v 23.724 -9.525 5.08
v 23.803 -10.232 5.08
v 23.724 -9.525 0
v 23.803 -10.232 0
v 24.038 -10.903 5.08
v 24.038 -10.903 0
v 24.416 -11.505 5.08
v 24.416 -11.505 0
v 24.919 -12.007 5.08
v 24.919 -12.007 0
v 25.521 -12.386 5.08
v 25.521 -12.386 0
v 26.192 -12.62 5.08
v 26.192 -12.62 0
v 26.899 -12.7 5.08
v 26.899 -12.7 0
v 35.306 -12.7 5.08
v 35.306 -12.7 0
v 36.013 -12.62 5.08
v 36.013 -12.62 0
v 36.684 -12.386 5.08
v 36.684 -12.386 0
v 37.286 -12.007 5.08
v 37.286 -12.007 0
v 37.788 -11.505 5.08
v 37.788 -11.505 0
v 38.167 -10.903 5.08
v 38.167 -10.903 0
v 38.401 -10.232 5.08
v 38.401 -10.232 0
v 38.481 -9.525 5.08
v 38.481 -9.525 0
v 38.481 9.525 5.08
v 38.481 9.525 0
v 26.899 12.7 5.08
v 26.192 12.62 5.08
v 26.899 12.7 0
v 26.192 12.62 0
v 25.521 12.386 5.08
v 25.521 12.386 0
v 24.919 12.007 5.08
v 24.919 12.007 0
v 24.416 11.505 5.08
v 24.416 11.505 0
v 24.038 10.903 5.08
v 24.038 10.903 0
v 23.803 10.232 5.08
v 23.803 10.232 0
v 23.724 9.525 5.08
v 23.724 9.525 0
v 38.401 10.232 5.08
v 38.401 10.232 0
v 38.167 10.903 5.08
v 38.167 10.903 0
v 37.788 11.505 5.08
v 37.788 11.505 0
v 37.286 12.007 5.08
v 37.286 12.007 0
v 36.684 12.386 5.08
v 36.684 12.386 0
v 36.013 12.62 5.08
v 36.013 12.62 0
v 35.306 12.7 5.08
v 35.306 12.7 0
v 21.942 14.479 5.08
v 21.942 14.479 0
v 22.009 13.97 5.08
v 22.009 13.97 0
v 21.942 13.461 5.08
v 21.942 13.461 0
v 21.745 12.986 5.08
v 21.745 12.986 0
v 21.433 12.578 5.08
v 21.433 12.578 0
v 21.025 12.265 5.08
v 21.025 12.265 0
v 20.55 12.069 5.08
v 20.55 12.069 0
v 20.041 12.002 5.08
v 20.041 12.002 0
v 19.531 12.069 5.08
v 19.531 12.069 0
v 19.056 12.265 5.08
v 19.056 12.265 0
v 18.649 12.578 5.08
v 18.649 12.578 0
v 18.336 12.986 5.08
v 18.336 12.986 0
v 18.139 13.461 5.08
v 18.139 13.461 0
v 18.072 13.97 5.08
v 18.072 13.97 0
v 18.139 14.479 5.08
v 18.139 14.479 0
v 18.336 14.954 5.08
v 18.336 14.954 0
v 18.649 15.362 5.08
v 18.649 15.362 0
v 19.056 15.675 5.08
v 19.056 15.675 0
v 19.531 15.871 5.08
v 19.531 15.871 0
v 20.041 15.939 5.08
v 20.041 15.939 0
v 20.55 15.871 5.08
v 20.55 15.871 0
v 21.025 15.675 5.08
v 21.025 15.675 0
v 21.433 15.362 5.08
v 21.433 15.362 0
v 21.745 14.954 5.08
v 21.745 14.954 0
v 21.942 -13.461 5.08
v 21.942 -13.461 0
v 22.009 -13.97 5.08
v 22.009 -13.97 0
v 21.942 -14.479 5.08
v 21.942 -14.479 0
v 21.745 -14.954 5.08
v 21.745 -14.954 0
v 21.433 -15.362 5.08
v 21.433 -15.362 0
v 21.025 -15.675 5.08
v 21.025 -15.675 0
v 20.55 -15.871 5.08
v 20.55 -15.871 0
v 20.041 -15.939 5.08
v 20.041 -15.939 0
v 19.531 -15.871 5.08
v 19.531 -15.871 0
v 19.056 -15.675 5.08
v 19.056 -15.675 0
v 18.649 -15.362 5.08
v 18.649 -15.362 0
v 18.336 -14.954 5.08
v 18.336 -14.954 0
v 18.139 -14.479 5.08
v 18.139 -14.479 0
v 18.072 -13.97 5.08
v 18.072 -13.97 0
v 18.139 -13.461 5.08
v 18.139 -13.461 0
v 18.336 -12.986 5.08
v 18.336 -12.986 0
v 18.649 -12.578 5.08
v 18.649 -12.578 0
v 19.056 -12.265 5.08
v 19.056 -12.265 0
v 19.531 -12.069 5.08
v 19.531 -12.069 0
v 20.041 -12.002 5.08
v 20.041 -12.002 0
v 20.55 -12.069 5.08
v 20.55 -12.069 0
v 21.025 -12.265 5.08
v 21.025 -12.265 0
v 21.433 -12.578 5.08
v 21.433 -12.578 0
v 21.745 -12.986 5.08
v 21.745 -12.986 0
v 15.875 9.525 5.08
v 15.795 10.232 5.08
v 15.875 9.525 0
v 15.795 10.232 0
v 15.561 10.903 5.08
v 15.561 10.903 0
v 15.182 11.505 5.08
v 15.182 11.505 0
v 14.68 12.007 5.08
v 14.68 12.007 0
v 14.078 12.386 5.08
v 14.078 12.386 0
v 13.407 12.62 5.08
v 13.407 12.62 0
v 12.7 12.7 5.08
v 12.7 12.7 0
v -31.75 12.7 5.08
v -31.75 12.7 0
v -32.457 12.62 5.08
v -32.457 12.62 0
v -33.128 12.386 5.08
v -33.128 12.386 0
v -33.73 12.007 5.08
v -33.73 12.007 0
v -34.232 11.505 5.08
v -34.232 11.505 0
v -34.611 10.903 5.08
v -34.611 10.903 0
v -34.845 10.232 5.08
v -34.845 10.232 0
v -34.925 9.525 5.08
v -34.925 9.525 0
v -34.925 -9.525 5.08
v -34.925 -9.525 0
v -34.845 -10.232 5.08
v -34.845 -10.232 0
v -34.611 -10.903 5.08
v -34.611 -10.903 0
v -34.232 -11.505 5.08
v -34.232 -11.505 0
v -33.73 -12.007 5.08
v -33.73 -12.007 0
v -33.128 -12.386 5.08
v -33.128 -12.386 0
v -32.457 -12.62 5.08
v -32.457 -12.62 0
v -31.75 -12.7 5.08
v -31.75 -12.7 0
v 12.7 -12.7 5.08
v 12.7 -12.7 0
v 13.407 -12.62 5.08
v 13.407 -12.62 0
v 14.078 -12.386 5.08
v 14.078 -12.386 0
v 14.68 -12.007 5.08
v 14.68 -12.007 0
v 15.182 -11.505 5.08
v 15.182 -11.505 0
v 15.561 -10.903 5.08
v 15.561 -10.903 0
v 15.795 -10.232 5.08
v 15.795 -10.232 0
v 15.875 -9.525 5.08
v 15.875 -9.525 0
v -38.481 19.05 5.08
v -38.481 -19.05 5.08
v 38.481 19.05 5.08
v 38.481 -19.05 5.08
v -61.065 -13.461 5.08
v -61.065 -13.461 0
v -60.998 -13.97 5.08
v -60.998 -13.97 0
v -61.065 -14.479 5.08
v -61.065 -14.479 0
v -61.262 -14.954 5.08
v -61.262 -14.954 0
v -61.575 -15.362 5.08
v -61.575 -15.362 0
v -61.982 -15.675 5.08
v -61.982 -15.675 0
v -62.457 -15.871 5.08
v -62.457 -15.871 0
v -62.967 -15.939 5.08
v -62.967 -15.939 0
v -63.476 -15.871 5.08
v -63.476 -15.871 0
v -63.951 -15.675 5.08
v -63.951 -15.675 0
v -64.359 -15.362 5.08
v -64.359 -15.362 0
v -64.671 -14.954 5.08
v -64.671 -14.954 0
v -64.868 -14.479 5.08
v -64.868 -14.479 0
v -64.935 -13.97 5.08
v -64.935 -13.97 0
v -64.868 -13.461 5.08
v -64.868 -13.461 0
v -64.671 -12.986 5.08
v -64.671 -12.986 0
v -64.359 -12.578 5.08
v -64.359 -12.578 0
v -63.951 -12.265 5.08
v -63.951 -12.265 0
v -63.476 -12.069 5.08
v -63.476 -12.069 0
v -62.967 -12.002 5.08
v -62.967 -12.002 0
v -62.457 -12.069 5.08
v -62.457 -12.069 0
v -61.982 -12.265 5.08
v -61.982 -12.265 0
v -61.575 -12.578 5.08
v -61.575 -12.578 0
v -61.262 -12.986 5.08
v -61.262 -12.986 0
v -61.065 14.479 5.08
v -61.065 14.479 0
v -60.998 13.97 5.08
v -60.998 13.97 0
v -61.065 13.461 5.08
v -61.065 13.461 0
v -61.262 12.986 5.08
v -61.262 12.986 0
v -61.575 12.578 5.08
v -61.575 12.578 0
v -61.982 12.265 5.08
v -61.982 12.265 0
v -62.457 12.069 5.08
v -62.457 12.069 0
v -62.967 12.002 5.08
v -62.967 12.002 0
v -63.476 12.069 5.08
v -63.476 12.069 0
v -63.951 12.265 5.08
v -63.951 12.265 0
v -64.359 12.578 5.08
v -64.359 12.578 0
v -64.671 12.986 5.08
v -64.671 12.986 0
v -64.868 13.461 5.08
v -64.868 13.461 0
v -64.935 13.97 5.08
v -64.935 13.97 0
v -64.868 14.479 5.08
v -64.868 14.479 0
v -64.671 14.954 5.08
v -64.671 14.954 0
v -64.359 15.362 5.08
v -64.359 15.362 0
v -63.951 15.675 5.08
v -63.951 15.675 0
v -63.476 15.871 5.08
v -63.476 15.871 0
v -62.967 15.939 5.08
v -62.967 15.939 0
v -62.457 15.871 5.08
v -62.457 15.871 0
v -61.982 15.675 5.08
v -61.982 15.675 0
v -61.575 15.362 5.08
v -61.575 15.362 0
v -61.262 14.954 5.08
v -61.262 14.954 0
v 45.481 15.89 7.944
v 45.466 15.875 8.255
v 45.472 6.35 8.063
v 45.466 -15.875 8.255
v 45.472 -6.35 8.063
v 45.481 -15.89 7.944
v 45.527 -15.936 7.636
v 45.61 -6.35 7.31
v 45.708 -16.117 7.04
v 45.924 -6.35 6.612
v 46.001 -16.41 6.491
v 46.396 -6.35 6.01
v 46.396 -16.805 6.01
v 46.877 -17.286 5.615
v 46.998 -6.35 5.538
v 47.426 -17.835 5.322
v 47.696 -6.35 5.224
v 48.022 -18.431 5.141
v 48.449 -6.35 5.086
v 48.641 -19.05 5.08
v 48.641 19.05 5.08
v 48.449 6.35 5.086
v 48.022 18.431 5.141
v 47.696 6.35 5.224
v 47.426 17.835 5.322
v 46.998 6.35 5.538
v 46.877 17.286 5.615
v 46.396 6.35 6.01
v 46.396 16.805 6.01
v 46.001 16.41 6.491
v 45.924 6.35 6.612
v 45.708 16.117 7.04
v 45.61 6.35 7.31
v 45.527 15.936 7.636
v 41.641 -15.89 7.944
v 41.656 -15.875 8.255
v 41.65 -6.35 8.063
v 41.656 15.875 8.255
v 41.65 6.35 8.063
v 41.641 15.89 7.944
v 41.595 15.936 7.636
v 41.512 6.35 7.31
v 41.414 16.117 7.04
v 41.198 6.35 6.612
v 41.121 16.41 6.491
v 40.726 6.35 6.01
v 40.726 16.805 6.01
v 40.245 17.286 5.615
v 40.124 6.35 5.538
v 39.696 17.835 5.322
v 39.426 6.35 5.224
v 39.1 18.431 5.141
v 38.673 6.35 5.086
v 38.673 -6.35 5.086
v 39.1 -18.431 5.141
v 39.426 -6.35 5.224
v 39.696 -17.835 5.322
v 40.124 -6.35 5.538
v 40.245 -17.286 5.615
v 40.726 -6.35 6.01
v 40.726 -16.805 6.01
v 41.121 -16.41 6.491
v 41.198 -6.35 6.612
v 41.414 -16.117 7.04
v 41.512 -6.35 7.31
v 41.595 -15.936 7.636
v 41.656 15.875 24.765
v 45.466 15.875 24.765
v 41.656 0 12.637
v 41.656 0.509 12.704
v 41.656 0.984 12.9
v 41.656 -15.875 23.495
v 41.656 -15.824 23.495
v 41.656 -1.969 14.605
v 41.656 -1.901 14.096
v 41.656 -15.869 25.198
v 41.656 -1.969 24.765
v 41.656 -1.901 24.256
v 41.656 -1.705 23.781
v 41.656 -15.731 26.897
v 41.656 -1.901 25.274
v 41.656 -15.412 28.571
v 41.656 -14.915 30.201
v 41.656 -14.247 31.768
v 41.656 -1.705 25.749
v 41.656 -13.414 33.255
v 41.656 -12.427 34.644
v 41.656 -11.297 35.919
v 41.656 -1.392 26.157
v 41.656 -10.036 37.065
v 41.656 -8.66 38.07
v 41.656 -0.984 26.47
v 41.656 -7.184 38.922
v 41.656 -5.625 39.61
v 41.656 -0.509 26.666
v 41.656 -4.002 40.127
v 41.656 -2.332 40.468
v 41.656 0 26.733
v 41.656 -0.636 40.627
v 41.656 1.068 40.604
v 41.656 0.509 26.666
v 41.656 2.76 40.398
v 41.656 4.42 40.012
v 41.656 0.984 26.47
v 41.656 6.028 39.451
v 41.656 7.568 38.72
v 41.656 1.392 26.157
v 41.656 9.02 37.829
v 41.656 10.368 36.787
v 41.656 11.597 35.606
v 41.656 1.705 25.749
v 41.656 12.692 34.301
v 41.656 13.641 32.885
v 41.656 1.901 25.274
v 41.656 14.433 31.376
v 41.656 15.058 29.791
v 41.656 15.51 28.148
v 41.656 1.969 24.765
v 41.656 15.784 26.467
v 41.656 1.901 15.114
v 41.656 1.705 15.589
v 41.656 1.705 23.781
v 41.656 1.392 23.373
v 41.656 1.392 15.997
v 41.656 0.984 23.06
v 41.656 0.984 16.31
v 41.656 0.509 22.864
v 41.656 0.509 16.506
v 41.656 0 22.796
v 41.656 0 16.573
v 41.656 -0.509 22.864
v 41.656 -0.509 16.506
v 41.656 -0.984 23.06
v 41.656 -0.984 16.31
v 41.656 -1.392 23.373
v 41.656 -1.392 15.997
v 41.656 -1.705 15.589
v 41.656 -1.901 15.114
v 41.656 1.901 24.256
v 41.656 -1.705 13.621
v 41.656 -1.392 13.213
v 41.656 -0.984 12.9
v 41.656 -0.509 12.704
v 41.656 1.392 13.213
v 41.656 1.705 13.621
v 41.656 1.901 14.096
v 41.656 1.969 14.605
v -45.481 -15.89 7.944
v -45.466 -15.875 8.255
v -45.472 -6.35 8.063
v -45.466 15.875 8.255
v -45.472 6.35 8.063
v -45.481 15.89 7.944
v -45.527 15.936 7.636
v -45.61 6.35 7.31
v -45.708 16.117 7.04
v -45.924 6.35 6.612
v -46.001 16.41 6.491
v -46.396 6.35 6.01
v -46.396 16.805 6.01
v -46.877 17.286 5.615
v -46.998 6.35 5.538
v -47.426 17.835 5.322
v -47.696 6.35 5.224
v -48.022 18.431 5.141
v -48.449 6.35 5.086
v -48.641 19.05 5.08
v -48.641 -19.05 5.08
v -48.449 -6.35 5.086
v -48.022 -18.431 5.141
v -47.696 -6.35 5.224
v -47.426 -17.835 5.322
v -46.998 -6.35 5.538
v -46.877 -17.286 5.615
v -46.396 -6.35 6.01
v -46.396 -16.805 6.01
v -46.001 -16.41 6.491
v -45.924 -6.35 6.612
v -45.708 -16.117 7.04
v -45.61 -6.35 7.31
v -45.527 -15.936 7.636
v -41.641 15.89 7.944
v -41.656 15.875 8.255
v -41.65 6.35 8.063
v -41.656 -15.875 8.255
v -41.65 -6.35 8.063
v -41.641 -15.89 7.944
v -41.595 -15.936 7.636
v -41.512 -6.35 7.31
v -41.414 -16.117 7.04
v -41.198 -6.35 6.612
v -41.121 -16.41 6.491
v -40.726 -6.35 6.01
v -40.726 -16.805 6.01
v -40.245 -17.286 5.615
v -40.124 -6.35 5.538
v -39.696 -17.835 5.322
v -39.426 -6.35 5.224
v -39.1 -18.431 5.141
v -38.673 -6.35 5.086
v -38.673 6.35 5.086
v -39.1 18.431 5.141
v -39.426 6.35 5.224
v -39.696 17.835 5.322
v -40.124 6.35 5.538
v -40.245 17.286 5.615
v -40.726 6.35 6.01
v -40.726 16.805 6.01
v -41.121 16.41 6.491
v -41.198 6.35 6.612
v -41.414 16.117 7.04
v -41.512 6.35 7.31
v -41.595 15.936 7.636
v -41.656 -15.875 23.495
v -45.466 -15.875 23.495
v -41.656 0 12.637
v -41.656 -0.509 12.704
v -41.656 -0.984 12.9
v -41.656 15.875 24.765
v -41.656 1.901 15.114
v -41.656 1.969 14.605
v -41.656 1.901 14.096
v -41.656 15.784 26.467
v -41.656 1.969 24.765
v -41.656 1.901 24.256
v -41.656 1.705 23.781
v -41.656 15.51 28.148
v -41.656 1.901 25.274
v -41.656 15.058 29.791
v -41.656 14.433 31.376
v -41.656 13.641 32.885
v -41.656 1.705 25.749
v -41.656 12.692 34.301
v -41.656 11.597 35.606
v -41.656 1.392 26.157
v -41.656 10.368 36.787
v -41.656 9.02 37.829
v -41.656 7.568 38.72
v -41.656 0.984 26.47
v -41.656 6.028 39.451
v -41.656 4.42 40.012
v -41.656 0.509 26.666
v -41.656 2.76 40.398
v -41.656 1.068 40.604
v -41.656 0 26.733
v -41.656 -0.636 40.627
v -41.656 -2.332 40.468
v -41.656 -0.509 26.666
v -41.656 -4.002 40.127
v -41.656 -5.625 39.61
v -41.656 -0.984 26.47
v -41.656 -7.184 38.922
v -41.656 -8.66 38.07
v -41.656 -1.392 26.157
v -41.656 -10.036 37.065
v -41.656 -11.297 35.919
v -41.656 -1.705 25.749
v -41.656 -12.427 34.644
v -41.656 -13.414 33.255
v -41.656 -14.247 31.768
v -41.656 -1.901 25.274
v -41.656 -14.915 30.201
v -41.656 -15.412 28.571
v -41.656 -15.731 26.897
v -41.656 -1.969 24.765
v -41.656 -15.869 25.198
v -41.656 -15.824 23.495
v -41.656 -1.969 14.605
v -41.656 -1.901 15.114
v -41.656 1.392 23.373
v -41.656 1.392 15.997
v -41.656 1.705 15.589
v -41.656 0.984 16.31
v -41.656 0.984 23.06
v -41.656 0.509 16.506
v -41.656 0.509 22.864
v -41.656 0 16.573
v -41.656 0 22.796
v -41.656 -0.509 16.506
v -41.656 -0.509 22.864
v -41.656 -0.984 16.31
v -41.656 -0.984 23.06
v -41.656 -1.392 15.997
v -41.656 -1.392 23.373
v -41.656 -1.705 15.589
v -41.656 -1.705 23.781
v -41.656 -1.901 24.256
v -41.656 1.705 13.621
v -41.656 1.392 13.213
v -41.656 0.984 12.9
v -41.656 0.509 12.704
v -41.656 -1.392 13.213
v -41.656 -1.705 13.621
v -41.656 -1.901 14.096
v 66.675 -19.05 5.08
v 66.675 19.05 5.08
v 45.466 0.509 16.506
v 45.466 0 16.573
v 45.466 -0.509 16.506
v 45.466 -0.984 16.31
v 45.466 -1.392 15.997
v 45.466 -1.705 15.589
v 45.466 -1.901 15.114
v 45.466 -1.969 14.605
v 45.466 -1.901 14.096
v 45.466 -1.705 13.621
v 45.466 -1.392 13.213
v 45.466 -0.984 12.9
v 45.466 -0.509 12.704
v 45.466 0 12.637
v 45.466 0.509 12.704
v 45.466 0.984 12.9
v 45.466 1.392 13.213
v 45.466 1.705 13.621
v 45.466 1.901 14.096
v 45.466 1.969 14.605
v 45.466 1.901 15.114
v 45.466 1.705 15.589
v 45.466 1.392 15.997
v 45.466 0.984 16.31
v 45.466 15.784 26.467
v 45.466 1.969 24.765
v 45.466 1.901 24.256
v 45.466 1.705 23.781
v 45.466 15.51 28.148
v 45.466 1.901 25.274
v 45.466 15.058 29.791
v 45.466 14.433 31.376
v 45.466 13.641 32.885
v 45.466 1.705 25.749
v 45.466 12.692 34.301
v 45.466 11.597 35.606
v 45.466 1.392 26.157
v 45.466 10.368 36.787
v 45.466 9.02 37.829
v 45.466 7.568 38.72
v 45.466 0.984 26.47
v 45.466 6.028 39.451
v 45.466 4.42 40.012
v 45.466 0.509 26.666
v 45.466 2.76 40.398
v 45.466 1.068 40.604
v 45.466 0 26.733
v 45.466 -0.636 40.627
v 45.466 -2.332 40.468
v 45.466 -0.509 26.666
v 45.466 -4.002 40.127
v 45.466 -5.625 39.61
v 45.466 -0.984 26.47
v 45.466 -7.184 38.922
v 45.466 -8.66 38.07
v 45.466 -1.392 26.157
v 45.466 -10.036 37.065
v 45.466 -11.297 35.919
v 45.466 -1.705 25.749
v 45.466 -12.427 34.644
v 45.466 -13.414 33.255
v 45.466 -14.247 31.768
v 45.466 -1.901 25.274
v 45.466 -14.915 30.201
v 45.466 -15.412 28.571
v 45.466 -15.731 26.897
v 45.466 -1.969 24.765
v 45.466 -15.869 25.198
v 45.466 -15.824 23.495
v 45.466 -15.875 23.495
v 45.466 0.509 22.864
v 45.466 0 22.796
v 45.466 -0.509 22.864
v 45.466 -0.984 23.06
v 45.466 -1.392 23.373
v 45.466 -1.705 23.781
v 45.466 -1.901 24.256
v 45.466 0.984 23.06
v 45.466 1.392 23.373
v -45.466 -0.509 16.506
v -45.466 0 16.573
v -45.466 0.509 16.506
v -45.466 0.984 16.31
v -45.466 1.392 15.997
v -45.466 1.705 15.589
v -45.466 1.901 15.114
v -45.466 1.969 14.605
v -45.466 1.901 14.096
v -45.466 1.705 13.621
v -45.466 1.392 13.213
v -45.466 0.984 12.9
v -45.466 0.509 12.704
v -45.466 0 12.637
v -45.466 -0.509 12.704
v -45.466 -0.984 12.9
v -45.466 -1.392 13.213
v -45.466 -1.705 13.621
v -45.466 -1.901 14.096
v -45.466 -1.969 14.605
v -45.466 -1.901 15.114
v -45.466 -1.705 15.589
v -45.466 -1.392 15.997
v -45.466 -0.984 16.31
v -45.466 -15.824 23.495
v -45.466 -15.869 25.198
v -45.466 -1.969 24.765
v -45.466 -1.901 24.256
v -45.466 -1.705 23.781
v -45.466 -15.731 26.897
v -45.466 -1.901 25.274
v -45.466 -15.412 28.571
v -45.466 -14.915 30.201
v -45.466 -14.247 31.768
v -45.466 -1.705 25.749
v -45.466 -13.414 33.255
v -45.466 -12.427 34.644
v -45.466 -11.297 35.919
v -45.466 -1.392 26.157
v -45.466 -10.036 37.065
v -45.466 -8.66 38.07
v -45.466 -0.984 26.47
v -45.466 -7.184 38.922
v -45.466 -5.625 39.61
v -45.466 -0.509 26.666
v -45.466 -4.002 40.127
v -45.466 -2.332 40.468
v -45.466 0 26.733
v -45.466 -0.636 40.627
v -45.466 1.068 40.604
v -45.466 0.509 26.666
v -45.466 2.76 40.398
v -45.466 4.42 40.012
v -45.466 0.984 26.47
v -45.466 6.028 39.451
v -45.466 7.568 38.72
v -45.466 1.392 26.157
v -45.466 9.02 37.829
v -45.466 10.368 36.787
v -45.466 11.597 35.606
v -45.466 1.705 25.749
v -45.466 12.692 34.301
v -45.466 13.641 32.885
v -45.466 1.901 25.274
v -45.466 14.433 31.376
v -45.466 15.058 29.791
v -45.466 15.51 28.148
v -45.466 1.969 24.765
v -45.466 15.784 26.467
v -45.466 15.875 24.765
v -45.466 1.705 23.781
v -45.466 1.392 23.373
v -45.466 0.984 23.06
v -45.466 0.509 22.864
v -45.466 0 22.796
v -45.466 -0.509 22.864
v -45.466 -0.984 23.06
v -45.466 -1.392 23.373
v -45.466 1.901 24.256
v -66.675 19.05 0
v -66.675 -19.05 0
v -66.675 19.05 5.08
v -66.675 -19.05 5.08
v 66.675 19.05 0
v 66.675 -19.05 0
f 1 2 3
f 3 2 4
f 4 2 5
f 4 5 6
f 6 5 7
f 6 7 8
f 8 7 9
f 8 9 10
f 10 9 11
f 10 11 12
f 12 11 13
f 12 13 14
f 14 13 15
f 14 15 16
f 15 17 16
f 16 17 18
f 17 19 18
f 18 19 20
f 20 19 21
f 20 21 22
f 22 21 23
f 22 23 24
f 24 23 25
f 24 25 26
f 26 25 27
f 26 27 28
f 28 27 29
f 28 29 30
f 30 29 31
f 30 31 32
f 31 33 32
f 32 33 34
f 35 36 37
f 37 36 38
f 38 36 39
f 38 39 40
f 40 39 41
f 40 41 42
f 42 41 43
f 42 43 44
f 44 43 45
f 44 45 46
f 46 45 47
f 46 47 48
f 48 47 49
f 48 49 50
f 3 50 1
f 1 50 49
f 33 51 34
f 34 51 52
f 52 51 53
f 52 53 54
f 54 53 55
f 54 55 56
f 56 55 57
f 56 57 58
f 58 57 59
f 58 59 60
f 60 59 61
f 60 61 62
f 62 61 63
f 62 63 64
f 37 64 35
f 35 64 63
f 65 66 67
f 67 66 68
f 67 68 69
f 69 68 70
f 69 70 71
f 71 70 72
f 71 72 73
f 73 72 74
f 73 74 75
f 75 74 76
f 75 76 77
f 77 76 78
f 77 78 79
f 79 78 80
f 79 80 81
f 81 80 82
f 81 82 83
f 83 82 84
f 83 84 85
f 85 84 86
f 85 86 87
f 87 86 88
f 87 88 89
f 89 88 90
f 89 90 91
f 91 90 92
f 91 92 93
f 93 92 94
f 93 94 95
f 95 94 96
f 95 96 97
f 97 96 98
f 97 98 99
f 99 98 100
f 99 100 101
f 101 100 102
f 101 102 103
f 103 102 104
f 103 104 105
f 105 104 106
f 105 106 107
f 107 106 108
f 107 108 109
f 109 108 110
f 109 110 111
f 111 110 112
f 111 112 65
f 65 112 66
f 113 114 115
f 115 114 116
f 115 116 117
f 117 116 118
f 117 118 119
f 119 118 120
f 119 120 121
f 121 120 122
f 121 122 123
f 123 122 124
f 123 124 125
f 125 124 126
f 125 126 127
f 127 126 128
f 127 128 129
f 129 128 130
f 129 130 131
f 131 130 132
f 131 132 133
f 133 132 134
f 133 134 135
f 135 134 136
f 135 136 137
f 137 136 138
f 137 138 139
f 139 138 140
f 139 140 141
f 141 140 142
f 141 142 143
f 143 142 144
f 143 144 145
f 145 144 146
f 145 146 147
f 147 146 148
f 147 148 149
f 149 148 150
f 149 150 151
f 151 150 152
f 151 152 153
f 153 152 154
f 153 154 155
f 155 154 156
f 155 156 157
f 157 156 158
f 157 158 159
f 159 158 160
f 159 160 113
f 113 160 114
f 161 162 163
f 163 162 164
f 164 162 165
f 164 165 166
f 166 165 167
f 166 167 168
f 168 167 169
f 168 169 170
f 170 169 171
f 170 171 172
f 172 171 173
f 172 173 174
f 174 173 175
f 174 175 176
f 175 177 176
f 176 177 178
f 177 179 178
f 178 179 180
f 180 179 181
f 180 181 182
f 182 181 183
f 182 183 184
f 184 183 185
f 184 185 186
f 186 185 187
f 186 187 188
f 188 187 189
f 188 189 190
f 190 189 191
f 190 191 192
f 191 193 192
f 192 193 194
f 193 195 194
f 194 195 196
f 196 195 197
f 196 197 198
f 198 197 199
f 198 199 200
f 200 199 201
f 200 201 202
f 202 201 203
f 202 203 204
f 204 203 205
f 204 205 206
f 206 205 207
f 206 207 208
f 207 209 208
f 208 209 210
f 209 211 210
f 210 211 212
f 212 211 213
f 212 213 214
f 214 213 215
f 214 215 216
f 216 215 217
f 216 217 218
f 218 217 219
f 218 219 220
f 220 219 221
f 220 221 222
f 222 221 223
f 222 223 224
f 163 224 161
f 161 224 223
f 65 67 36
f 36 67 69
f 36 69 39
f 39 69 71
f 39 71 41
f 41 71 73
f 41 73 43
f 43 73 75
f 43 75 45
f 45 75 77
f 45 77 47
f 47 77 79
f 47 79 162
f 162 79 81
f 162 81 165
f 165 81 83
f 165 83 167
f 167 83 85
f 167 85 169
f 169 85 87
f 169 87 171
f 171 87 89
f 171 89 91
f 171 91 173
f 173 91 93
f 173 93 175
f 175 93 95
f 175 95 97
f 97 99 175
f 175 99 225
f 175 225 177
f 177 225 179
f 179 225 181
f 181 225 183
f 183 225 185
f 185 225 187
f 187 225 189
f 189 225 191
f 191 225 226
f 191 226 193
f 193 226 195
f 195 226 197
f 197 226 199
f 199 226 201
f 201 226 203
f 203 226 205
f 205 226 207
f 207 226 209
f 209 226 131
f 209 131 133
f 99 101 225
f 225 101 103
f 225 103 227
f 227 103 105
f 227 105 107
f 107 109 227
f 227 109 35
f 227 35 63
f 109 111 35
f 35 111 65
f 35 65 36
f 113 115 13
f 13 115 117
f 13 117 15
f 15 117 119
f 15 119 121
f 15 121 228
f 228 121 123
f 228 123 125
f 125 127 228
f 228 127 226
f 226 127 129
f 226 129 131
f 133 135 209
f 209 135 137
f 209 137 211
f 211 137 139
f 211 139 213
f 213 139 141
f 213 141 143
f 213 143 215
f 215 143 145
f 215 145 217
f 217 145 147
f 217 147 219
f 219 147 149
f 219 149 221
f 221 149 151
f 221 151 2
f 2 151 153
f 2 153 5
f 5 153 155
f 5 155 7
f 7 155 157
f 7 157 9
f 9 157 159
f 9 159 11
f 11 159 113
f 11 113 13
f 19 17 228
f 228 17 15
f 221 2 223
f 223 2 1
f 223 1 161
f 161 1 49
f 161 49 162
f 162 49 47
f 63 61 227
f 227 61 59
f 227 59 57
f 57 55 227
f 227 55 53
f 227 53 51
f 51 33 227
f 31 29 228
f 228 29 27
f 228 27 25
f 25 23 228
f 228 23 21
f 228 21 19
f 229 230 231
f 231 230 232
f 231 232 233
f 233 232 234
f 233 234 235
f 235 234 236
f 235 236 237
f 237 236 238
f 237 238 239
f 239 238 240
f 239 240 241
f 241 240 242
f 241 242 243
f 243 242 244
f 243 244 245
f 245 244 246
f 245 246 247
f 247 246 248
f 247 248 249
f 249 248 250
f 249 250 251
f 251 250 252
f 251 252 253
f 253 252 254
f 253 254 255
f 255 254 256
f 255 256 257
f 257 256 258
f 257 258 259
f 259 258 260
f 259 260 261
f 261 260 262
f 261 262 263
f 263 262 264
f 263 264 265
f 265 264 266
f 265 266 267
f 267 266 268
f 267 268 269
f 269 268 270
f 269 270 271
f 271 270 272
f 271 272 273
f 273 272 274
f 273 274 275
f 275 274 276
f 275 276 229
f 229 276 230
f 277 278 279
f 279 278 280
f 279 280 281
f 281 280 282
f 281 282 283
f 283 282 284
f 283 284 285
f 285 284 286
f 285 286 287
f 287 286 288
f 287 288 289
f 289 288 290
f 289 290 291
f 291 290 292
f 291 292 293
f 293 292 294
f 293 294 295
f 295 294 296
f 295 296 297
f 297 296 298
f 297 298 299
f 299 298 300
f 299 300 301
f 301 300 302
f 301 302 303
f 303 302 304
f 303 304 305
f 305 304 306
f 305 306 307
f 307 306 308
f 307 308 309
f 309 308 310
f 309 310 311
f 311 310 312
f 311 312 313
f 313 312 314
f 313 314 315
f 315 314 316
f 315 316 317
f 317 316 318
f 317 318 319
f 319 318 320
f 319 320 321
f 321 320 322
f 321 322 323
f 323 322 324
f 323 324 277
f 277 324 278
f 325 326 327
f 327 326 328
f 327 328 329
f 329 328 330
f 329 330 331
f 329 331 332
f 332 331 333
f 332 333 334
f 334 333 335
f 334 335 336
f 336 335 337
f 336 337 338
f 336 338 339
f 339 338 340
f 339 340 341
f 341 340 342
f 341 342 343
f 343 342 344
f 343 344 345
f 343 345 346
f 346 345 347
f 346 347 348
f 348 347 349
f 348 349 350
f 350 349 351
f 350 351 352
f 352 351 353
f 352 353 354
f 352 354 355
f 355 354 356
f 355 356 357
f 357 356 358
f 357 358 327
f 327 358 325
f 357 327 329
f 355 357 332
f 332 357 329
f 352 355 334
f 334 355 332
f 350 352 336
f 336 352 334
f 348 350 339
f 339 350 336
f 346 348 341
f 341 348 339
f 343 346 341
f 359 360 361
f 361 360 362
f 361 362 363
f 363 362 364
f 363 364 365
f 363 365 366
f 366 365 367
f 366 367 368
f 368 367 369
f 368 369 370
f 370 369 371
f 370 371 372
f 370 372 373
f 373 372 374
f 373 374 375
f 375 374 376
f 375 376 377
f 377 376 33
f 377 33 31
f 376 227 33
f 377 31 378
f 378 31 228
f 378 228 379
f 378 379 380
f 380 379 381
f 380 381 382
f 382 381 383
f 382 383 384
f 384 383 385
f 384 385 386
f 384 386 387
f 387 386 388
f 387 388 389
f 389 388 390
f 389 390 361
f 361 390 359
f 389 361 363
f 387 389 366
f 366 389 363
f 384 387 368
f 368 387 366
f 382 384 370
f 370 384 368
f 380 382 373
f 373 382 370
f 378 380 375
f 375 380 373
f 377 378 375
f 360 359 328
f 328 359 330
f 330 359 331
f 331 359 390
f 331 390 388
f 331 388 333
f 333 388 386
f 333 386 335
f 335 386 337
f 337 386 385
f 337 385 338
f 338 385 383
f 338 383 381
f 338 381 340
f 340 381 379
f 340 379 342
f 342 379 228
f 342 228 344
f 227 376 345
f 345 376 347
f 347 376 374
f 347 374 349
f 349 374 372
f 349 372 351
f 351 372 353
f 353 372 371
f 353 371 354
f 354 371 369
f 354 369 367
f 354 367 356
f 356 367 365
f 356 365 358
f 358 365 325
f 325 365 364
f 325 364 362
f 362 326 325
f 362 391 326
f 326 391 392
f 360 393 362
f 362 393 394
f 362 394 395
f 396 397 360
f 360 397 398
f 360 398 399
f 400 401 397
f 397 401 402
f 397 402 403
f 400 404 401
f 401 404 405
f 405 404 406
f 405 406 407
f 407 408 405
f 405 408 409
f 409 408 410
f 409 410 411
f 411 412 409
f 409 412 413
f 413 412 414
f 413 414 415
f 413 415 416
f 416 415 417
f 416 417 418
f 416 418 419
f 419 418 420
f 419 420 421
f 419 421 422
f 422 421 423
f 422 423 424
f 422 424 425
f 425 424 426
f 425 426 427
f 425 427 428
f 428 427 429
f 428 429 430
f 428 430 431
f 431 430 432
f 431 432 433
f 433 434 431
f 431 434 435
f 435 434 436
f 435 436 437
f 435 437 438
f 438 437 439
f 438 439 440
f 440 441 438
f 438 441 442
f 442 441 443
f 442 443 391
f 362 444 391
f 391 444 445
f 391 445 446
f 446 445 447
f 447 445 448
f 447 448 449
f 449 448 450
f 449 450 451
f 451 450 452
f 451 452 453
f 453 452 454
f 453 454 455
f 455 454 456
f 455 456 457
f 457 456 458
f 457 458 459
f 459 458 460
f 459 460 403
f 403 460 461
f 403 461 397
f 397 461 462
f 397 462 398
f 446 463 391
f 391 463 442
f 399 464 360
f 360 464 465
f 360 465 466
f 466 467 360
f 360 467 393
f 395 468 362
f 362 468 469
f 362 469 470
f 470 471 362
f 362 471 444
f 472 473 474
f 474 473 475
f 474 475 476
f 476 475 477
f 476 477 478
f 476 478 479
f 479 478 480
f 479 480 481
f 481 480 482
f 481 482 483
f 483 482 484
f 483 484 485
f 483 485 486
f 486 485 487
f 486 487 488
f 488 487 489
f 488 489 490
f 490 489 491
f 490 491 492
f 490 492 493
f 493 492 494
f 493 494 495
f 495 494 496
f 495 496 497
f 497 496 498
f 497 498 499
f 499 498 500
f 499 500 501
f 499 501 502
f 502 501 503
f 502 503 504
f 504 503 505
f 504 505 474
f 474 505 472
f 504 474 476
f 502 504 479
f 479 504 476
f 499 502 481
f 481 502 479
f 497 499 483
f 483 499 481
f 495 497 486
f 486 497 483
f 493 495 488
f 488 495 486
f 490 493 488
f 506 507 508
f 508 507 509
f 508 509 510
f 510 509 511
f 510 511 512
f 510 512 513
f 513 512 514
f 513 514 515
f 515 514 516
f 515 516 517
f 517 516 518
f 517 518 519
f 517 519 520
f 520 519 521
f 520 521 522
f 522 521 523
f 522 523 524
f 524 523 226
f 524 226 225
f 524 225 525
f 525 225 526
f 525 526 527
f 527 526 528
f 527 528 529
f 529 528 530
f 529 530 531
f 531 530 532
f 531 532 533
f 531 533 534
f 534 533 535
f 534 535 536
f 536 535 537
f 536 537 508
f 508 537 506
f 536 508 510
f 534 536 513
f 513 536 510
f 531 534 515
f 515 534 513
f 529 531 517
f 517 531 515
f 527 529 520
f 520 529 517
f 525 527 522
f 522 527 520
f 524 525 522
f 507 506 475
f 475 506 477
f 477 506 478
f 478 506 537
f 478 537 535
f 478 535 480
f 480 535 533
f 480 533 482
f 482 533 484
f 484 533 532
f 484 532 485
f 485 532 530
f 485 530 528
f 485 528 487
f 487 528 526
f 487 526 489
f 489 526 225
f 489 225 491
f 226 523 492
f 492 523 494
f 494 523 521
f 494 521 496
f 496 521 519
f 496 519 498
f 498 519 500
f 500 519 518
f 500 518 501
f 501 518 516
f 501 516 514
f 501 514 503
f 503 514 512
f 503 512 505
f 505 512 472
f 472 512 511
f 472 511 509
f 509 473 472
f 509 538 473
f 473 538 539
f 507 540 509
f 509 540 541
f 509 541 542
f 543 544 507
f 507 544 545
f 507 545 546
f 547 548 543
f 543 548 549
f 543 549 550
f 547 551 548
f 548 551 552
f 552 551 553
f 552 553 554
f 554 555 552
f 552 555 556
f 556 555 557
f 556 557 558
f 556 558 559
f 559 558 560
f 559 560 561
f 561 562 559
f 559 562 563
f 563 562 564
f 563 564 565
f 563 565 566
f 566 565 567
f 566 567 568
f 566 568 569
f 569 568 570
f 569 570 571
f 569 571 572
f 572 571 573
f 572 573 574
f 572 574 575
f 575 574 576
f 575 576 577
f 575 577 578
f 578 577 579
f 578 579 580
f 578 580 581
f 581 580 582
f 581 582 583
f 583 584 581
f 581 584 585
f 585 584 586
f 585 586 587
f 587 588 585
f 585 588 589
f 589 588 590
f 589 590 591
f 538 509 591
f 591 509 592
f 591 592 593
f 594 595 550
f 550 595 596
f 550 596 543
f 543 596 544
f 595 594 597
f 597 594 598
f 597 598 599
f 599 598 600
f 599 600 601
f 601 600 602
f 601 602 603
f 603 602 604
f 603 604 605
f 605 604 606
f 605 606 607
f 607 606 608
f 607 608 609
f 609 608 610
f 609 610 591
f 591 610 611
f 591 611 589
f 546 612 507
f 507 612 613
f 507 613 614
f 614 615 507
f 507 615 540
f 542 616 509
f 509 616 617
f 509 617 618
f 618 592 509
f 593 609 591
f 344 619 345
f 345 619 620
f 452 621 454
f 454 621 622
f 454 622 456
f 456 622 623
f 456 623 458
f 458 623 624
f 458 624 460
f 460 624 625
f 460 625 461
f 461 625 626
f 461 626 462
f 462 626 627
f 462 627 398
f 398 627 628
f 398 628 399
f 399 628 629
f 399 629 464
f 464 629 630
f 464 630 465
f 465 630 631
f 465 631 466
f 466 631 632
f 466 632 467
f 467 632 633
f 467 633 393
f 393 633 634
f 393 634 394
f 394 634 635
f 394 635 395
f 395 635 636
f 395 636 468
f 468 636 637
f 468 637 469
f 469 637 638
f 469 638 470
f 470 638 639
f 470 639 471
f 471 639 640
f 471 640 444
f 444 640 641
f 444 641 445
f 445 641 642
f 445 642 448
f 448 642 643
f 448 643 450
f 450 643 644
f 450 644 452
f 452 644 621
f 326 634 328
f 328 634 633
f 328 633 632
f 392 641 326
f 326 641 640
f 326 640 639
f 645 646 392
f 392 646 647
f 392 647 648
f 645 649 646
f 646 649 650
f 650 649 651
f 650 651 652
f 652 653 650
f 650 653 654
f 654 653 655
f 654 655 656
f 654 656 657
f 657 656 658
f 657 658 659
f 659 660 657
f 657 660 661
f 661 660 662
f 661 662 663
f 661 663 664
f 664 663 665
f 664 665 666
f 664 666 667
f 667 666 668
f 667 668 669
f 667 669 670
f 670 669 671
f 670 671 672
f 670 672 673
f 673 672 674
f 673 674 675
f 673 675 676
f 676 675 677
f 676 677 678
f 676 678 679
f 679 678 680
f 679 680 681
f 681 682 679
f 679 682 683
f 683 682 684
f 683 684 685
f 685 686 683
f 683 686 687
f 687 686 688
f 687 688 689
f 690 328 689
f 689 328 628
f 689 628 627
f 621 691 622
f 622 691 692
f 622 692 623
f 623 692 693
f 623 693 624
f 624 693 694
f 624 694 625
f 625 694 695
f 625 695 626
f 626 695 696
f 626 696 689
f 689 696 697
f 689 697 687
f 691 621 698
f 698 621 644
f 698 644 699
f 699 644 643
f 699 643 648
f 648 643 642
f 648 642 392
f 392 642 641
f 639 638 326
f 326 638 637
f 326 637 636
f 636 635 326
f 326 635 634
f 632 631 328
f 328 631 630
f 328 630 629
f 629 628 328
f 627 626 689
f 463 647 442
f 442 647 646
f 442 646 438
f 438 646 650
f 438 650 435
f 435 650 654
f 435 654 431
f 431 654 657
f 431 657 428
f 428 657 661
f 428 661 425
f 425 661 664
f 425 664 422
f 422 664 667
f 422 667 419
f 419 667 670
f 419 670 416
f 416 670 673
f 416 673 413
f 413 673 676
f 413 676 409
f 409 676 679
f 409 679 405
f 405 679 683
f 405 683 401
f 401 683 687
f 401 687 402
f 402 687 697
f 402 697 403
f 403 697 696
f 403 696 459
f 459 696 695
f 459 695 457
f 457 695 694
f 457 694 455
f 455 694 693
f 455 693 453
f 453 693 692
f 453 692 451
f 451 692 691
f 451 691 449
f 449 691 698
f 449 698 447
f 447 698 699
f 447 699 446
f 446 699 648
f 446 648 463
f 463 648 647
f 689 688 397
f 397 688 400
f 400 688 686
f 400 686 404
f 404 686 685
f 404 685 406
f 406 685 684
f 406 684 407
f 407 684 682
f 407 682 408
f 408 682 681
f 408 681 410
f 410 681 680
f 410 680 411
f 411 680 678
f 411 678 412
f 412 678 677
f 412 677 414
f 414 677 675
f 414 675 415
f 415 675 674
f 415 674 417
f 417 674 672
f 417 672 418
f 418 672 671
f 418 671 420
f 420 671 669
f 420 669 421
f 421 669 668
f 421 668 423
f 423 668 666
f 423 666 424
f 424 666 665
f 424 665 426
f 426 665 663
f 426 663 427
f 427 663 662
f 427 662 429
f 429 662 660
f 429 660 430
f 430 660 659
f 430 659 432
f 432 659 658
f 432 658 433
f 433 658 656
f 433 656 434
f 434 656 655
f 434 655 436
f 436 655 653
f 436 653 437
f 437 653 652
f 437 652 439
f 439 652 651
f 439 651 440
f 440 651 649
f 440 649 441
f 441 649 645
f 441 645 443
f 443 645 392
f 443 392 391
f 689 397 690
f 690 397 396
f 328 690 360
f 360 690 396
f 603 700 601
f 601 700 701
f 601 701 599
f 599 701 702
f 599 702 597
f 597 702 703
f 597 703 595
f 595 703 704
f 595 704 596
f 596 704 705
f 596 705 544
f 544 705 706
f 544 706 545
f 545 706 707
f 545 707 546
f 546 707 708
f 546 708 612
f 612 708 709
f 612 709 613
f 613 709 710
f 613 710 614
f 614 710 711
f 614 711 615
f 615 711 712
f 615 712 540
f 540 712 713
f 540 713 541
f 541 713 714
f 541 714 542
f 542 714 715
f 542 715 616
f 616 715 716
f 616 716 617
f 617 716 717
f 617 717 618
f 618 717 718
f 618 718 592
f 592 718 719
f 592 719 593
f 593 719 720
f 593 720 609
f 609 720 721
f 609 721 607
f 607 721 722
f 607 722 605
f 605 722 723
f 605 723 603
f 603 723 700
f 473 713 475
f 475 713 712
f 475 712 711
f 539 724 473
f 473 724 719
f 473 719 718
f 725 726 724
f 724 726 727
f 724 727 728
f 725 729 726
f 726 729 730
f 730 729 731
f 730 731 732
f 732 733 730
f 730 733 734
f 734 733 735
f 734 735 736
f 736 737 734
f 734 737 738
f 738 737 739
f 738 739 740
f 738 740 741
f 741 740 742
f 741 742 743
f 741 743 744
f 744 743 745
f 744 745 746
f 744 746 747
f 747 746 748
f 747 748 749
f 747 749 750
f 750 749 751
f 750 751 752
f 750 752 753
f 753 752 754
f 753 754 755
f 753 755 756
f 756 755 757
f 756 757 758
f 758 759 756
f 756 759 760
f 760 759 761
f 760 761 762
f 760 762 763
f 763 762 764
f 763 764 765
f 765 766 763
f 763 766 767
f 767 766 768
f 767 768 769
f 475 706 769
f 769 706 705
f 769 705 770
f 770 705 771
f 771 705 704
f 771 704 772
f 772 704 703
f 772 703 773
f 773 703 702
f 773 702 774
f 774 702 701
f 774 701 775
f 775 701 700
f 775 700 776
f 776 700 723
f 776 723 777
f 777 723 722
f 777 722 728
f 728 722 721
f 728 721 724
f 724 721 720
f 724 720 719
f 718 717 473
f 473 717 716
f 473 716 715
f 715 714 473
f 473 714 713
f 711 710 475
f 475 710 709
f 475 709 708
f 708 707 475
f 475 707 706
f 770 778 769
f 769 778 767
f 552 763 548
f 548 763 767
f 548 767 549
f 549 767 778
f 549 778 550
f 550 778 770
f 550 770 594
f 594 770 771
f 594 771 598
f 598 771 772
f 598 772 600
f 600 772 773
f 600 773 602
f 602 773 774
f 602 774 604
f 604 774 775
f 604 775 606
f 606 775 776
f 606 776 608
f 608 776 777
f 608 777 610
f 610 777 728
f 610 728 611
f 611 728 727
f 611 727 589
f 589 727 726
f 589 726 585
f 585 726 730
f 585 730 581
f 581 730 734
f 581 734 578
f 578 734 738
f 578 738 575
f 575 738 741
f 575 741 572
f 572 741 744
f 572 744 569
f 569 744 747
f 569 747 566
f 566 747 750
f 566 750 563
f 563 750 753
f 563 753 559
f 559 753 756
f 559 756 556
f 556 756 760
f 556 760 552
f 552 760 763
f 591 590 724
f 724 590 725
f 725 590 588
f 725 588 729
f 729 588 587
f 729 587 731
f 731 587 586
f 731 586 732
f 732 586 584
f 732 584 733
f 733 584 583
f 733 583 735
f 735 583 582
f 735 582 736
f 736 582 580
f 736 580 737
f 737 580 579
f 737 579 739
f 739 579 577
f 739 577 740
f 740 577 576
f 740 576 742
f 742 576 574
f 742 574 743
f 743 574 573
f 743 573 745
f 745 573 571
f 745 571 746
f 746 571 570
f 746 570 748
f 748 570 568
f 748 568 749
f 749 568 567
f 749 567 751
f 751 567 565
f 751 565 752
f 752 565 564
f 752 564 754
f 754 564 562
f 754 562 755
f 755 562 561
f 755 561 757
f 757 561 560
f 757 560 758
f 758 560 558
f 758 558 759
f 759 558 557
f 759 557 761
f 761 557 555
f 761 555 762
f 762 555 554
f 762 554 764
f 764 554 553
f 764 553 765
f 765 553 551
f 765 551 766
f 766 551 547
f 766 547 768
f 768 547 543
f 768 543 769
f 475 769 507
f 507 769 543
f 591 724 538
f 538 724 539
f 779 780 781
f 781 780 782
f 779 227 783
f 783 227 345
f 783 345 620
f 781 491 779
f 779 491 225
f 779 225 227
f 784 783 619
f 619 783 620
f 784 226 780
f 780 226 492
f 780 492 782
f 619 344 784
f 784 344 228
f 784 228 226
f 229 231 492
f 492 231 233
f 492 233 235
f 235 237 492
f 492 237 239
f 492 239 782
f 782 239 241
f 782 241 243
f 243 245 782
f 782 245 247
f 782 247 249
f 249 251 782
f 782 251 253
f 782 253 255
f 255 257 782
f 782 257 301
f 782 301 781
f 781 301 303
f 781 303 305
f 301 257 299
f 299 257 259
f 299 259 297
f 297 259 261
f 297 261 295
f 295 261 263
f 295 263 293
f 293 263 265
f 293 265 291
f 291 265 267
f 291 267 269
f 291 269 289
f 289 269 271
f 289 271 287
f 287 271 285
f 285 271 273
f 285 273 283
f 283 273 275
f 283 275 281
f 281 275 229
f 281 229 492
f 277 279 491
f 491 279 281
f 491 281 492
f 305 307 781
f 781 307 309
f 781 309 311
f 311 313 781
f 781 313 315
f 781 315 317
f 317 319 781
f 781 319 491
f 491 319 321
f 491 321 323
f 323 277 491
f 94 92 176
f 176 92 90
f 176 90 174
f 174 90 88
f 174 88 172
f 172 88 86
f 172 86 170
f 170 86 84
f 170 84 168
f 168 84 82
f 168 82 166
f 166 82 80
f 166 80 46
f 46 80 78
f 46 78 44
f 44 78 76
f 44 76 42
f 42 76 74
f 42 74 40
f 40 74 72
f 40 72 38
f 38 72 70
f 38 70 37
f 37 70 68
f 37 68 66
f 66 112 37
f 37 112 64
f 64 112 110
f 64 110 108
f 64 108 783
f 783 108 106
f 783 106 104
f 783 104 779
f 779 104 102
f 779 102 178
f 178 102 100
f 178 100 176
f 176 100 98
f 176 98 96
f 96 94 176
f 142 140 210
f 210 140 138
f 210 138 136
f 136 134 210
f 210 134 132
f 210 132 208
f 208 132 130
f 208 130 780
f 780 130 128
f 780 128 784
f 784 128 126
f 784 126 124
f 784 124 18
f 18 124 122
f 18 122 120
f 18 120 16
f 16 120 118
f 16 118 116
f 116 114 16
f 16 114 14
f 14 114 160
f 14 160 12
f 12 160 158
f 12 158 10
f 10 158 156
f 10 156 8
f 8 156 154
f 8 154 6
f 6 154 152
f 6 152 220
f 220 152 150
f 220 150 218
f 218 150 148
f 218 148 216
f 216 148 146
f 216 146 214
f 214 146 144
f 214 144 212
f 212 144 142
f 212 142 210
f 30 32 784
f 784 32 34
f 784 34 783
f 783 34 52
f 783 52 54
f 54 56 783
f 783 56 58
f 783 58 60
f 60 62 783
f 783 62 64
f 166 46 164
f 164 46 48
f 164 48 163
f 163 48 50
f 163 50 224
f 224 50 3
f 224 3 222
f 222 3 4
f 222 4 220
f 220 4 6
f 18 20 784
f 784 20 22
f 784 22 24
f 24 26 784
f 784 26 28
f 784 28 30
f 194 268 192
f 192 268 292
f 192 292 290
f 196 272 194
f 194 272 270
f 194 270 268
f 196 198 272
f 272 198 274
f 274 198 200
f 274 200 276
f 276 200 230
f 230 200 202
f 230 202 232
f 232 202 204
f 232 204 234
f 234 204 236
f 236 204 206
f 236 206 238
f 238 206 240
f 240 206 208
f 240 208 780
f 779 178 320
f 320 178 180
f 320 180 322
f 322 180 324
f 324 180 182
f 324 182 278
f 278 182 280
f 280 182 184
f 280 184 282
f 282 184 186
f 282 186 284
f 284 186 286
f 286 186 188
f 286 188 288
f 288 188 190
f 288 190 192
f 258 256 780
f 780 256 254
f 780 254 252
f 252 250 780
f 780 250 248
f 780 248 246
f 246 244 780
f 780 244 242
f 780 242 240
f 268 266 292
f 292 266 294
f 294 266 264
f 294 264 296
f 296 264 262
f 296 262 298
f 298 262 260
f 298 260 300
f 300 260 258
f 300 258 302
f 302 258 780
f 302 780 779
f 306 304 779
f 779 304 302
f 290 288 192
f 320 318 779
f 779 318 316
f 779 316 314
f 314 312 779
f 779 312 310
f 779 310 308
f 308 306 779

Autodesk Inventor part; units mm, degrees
ref_plane "YZ Plane" through (0, 0, 0) normal (1, 0, 0) x (0, 1, 0)
ref_plane "XZ Plane" through (0, 0, 0) normal (0, 1, 0) x (-1, 0, 0)
ref_plane "Work Plane1" through (0, 0, 0) normal (0, 0, 1) x (1, 0, 0)
sketch "Sketch1" plane through (0, 0, 0) normal (0, 0, 1) x (1, 0, 0)
  line L0 (-66.675, -19.05) -> (66.675, -19.05) projected
  line L1 (66.675, -19.05) -> (66.675, 19.05) projected
  line L2 (66.675, 19.05) -> (-66.675, 19.05) projected
  line L3 (-66.675, 19.05) -> (-66.675, -19.05) projected
  circle A0 centre (61.0954, -13.4704) radius 1.778 construction
  circle A1 centre (59.7602, -6.9148) radius 1.778 construction
  circle A2 centre (57.15, 0) radius 2.032 construction
  circle A3 centre (54.5398, -6.9148) radius 1.778 construction
  circle A4 centre (53.2046, -13.4704) radius 1.778 construction
  circle A5 centre (54.5398, 6.9148) radius 1.778 construction
  circle A6 centre (53.2046, 13.4704) radius 1.778 construction
  circle A7 centre (59.7602, 6.9148) radius 1.778 construction
  circle A8 centre (61.0954, 13.4704) radius 1.778 construction
  circle A9 centre (47.625, 9.779) radius 1.778 construction
  circle A10 centre (47.625, -9.779) radius 1.778 construction
  circle A11 centre (34.1546, -13.4704) radius 1.778 construction
  circle A12 centre (42.0454, -13.4704) radius 1.778 construction
  circle A13 centre (40.7102, -6.9148) radius 1.778 construction
  circle A14 centre (38.1, 0) radius 2.032 construction
  circle A15 centre (40.7102, 6.9148) radius 1.778 construction
  circle A16 centre (42.0454, 13.4704) radius 1.778 construction
  circle A17 centre (35.4898, 6.9148) radius 1.778 construction
  circle A18 centre (34.1546, 13.4704) radius 1.778 construction
  circle A19 centre (35.4898, -6.9148) radius 1.778 construction
  circle A20 centre (34.1546, -13.4704) radius 1.778 construction
  circle A21 centre (28.575, -9.779) radius 1.778 construction
  circle A22 centre (28.575, 9.779) radius 1.778 construction
  circle A23 centre (21.6602, 6.9148) radius 1.778 construction
  circle A24 centre (16.4398, 6.9148) radius 1.778 construction
  circle A25 centre (15.1046, 13.4704) radius 1.778 construction
  circle A26 centre (22.9954, 13.4704) radius 1.778 construction
  circle A27 centre (19.05, 0) radius 2.032 construction
  circle A28 centre (21.6602, -6.9148) radius 1.778 construction
  circle A29 centre (22.9954, -13.4704) radius 1.778 construction
  circle A30 centre (15.1046, -13.4704) radius 1.778 construction
  circle A31 centre (16.4398, -6.9148) radius 1.778 construction
  circle A32 centre (9.525, -9.779) radius 1.778 construction
  circle A33 centre (9.525, 9.779) radius 1.778 construction
  circle A34 centre (3.9454, 13.4704) radius 1.778 construction
  circle A35 centre (2.6102, 6.9148) radius 1.778 construction
  circle A36 centre (-2.6102, 6.9148) radius 1.778 construction
  circle A37 centre (-3.9454, 13.4704) radius 1.778 construction
  circle A38 centre (0, 0) radius 2.032 construction
  circle A39 centre (-2.6102, -6.9148) radius 1.778 construction
  circle A40 centre (2.6102, -6.9148) radius 1.778 construction
  circle A41 centre (3.9454, -13.4704) radius 1.778 construction
  circle A42 centre (-3.9454, -13.4704) radius 1.778 construction
  circle A43 centre (-9.525, -9.779) radius 1.778 construction
  circle A44 centre (-9.525, 9.779) radius 1.778 construction
  circle A45 centre (-15.1046, 13.4704) radius 1.778 construction
  circle A46 centre (-22.9954, 13.4704) radius 1.778 construction
  circle A47 centre (-21.6602, 6.9148) radius 1.778 construction
  circle A48 centre (-16.4398, 6.9148) radius 1.778 construction
  circle A49 centre (-19.05, 0) radius 2.032 construction
  circle A50 centre (-21.6602, -6.9148) radius 1.778 construction
  circle A51 centre (-16.4398, -6.9148) radius 1.778 construction
  circle A52 centre (-15.1046, -13.4704) radius 1.778 construction
  circle A53 centre (-22.9954, -13.4704) radius 1.778 construction
  circle A54 centre (-28.575, -9.779) radius 1.778 construction
  circle A55 centre (-28.575, 9.779) radius 1.778 construction
  circle A56 centre (-34.1546, 13.4704) radius 1.778 construction
  circle A57 centre (-42.0454, 13.4704) radius 1.778 construction
  circle A58 centre (-40.7102, 6.9148) radius 1.778 construction
  circle A59 centre (-35.4898, 6.9148) radius 1.778 construction
  circle A60 centre (-38.1, 0) radius 2.032 construction
  circle A61 centre (-35.4898, -6.9148) radius 1.778 construction
  circle A62 centre (-40.7102, -6.9148) radius 1.778 construction
  circle A63 centre (-34.1546, -13.4704) radius 1.778 construction
  circle A64 centre (-42.0454, -13.4704) radius 1.778 construction
  circle A65 centre (-47.625, -9.779) radius 1.778 construction
  circle A66 centre (-53.2046, -13.4704) radius 1.778 construction
  circle A67 centre (-54.5398, -6.9148) radius 1.778 construction
  circle A68 centre (-57.15, 0) radius 2.032 construction
  circle A69 centre (-59.7602, -6.9148) radius 1.778 construction
  circle A70 centre (-61.0954, -13.4704) radius 1.778 construction
  circle A71 centre (-59.7602, 6.9148) radius 1.778 construction
  circle A72 centre (-54.5398, 6.9148) radius 1.778 construction
  circle A73 centre (-53.2046, 13.4704) radius 1.778 construction
  circle A74 centre (-61.0954, 13.4704) radius 1.778 construction
extrude "Extrusion2" add sketch "Sketch1" along normal blind 5.08
sketch "Sketch2" plane through (0, 0, 5.08) normal (0, 0, 1) x (1, 0, 0)
  circle A0 centre (-53.2046, -13.4704) radius 1.9685 construction
  circle A1 centre (-53.2046, -13.4704) radius 2.8702 construction
  circle A2 centre (-42.0454, -13.4704) radius 1.9685 construction
  circle A3 centre (-42.0454, -13.4704) radius 2.8702 construction
  point P0 (0, 0)
  dimension "d37" = 5.7404
  dimension "d38" = 5.7404
ref_plane "Work Plane2" through (-43.561, -19.05, 0) normal (-1, 0, 0) x (0, 0, 1)
sketch "Sketch3" plane through (-43.561, -19.05, 0) normal (-1, 0, 0) x (0, 0, 1)
  line L0 (0, 6.35) -> (5.08, 6.35) construction
  line L1 (5.08, 0) -> (5.08, 38.1) projected
  line L2 (0, 0) -> (5.08, 0) projected
  line L3 (0, 0) -> (0, 38.1) projected
  line L4 (0, 31.75) -> (5.08, 31.75) construction
  line L5 (0, 38.1) -> (5.08, 38.1) projected
  line L6 (8.89, 31.75) -> (8.89, 6.35) construction
  circle A0 centre (24.765, 19.05) radius 15.875
  circle A1 centre (24.765, 19.05) radius 1.9685
  line L7 (24.765, 19.05) -> (34.925, 19.05) construction
  line L8 (24.765, 34.925) -> (5.08, 34.925)
  line L9 (5.08, 34.925) -> (5.08, 3.175)
  line L10 (5.08, 3.175) -> (23.495, 3.175)
  arc A2 (24.765, 31.75) -> (23.495, 6.4137) centre (24.765, 19.05) ccw
  line L11 (24.765, 31.75) -> (24.765, 34.925)
  line L12 (23.495, 3.175) -> (23.495, 6.4137)
  line L13 (24.765, 17.0815) -> (24.765, 21.0185)
  line L14 (5.08, 21.0185) -> (5.08, 17.0815) projected
  line L15 (5.08, 19.05) -> (5.08, 29.21)
  line L16 (5.08, 19.05) -> (5.08, 8.89)
  circle A3 centre (14.605, 19.05) radius 1.9685
  point P0 (0, 19.05)
  dimension "d45" = 31.75
  dimension "d40" = 6.35
  dimension "d41" = 6.35
  dimension "d43" = 15.875
  dimension "d46" = 3.937
  dimension "d51" = 3.81
  dimension "d52" = 19.05
  dimension "d61" = 25.4
  dimension "d62" = 10.16
  dimension "d63" = 10.16
  dimension "d66" = 10.16
  dimension "d67" = 3.937
ref_plane "Work Plane3" through (0, -19.05, 0) normal (1, 0, 0) x (0, 0, -1)
extrude "Extrusion4" add sketch "Sketch3" along normal blind 1.905 and the other way blind 1.905 contours L1 L8 A0 L12 L10 | L12 A2 L11 A0 | A0 L11 A2 L12
mirror "Mirror2" about plane through (0, -19.05, 0) normal (1, 0, 0) of "Extrusion4"
fillet "Fillet3" radius 3.175 8 edges at (-41.656, 0, 5.08) (-43.561, -15.875, 5.08) (-45.466, 0, 5.08) (-43.561, 15.875, 5.08) (41.656, 0, 5.08) (43.561, 15.875, 5.08) (45.466, 0, 5.08) (43.561, -15.875, 5.08)
ref_plane "Work Plane4" through (-66.675, 0, 0) normal (0, 1, 0) x (1, 0, 0)
sketch "Sketch5" plane through (0, 0, 0) normal (0, 0, -1) x (-1, 0, 0)
  line L0 (66.675, 19.05) -> (66.675, -19.05) projected
  line L1 (-66.675, 19.05) -> (66.675, 19.05) projected
  line L2 (66.675, -19.05) -> (-66.675, -19.05) projected
  point P0 (0, 0)
  point P1 (62.9666, 13.97)
  point P2 (62.9666, -13.97)
  dimension "d73" = 3.7084
  dimension "d74" = 3.7084
  dimension "d75" = 5.08
  dimension "d76" = 5.08
hole "Hole1" at (-62.9666, -13.97, 0) at (-62.9666, 13.97, 0) direction (0, 0, 1) diameter 3.937 end through all
sketch "Sketch6" plane through (0, 0, 5.08) normal (0, 0, 1) x (1, 0, 0)
  line L0 (15.875, 12.7) -> (-34.925, 12.7)
  line L1 (-34.925, 12.7) -> (-34.925, -12.7)
  line L2 (-34.925, -12.7) -> (15.875, -12.7)
  line L3 (15.875, -12.7) -> (15.875, 12.7)
  line L4 (-38.481, -19.05) -> (38.481, -19.05) projected
  line L5 (38.481, 19.05) -> (-38.481, 19.05) projected
  line L6 (-66.675, 19.05) -> (-66.675, -19.05) projected
  line L7 (66.675, -19.05) -> (66.675, 19.05) projected
  line L8 (23.7236, -12.7) -> (38.481, -12.7)
  line L9 (38.481, 12.7) -> (23.7236, 12.7)
  line L10 (23.7236, 12.7) -> (23.7236, -12.7)
  line L11 (38.481, 19.05) -> (38.481, -19.05) projected
  line L12 (38.481, -12.7) -> (38.481, 12.7)
  point P0 (0, 0)
  dimension "d84" = 6.35
  dimension "d85" = 6.35
  dimension "d86" = 31.75
  dimension "d87" = 50.8
  dimension "d102" = 42.9514
extrude "Extrusion5" cut sketch "Sketch6" against normal through all
fillet "Fillet4" radius 3.175 4 edges at (15.875, -12.7, 2.54) (-34.925, -12.7, 2.54) (-34.925, 12.7, 2.54) (15.875, 12.7, 2.54)
sketch "Sketch7" plane through (0, 0, 0) normal (0, 0, -1) x (-1, 0, 0)
  line L0 (-66.675, -19.05) -> (-66.675, 19.05) projected
  line L1 (66.675, -19.05) -> (-66.675, -19.05) projected
  line L2 (-66.675, 19.05) -> (66.675, 19.05) projected
  point P0 (0, 0)
  point P1 (-20.0406, 13.97)
  point P2 (-20.0406, -13.97)
  dimension "d91" = 46.6344
  dimension "d92" = 46.6344
  dimension "d93" = 5.08
  dimension "d94" = 5.08
hole "Hole2" at (20.0406, 13.97, 0) at (20.0406, -13.97, 0) direction (0, 0, 1) diameter 3.937 end through all
fillet "Fillet5" radius 3.175 4 edges at (38.481, 12.7, 2.54) (23.7236, 12.7, 2.54) (38.481, -12.7, 2.54) (23.7236, -12.7, 2.54)
properties part number "phone mount pivot"
